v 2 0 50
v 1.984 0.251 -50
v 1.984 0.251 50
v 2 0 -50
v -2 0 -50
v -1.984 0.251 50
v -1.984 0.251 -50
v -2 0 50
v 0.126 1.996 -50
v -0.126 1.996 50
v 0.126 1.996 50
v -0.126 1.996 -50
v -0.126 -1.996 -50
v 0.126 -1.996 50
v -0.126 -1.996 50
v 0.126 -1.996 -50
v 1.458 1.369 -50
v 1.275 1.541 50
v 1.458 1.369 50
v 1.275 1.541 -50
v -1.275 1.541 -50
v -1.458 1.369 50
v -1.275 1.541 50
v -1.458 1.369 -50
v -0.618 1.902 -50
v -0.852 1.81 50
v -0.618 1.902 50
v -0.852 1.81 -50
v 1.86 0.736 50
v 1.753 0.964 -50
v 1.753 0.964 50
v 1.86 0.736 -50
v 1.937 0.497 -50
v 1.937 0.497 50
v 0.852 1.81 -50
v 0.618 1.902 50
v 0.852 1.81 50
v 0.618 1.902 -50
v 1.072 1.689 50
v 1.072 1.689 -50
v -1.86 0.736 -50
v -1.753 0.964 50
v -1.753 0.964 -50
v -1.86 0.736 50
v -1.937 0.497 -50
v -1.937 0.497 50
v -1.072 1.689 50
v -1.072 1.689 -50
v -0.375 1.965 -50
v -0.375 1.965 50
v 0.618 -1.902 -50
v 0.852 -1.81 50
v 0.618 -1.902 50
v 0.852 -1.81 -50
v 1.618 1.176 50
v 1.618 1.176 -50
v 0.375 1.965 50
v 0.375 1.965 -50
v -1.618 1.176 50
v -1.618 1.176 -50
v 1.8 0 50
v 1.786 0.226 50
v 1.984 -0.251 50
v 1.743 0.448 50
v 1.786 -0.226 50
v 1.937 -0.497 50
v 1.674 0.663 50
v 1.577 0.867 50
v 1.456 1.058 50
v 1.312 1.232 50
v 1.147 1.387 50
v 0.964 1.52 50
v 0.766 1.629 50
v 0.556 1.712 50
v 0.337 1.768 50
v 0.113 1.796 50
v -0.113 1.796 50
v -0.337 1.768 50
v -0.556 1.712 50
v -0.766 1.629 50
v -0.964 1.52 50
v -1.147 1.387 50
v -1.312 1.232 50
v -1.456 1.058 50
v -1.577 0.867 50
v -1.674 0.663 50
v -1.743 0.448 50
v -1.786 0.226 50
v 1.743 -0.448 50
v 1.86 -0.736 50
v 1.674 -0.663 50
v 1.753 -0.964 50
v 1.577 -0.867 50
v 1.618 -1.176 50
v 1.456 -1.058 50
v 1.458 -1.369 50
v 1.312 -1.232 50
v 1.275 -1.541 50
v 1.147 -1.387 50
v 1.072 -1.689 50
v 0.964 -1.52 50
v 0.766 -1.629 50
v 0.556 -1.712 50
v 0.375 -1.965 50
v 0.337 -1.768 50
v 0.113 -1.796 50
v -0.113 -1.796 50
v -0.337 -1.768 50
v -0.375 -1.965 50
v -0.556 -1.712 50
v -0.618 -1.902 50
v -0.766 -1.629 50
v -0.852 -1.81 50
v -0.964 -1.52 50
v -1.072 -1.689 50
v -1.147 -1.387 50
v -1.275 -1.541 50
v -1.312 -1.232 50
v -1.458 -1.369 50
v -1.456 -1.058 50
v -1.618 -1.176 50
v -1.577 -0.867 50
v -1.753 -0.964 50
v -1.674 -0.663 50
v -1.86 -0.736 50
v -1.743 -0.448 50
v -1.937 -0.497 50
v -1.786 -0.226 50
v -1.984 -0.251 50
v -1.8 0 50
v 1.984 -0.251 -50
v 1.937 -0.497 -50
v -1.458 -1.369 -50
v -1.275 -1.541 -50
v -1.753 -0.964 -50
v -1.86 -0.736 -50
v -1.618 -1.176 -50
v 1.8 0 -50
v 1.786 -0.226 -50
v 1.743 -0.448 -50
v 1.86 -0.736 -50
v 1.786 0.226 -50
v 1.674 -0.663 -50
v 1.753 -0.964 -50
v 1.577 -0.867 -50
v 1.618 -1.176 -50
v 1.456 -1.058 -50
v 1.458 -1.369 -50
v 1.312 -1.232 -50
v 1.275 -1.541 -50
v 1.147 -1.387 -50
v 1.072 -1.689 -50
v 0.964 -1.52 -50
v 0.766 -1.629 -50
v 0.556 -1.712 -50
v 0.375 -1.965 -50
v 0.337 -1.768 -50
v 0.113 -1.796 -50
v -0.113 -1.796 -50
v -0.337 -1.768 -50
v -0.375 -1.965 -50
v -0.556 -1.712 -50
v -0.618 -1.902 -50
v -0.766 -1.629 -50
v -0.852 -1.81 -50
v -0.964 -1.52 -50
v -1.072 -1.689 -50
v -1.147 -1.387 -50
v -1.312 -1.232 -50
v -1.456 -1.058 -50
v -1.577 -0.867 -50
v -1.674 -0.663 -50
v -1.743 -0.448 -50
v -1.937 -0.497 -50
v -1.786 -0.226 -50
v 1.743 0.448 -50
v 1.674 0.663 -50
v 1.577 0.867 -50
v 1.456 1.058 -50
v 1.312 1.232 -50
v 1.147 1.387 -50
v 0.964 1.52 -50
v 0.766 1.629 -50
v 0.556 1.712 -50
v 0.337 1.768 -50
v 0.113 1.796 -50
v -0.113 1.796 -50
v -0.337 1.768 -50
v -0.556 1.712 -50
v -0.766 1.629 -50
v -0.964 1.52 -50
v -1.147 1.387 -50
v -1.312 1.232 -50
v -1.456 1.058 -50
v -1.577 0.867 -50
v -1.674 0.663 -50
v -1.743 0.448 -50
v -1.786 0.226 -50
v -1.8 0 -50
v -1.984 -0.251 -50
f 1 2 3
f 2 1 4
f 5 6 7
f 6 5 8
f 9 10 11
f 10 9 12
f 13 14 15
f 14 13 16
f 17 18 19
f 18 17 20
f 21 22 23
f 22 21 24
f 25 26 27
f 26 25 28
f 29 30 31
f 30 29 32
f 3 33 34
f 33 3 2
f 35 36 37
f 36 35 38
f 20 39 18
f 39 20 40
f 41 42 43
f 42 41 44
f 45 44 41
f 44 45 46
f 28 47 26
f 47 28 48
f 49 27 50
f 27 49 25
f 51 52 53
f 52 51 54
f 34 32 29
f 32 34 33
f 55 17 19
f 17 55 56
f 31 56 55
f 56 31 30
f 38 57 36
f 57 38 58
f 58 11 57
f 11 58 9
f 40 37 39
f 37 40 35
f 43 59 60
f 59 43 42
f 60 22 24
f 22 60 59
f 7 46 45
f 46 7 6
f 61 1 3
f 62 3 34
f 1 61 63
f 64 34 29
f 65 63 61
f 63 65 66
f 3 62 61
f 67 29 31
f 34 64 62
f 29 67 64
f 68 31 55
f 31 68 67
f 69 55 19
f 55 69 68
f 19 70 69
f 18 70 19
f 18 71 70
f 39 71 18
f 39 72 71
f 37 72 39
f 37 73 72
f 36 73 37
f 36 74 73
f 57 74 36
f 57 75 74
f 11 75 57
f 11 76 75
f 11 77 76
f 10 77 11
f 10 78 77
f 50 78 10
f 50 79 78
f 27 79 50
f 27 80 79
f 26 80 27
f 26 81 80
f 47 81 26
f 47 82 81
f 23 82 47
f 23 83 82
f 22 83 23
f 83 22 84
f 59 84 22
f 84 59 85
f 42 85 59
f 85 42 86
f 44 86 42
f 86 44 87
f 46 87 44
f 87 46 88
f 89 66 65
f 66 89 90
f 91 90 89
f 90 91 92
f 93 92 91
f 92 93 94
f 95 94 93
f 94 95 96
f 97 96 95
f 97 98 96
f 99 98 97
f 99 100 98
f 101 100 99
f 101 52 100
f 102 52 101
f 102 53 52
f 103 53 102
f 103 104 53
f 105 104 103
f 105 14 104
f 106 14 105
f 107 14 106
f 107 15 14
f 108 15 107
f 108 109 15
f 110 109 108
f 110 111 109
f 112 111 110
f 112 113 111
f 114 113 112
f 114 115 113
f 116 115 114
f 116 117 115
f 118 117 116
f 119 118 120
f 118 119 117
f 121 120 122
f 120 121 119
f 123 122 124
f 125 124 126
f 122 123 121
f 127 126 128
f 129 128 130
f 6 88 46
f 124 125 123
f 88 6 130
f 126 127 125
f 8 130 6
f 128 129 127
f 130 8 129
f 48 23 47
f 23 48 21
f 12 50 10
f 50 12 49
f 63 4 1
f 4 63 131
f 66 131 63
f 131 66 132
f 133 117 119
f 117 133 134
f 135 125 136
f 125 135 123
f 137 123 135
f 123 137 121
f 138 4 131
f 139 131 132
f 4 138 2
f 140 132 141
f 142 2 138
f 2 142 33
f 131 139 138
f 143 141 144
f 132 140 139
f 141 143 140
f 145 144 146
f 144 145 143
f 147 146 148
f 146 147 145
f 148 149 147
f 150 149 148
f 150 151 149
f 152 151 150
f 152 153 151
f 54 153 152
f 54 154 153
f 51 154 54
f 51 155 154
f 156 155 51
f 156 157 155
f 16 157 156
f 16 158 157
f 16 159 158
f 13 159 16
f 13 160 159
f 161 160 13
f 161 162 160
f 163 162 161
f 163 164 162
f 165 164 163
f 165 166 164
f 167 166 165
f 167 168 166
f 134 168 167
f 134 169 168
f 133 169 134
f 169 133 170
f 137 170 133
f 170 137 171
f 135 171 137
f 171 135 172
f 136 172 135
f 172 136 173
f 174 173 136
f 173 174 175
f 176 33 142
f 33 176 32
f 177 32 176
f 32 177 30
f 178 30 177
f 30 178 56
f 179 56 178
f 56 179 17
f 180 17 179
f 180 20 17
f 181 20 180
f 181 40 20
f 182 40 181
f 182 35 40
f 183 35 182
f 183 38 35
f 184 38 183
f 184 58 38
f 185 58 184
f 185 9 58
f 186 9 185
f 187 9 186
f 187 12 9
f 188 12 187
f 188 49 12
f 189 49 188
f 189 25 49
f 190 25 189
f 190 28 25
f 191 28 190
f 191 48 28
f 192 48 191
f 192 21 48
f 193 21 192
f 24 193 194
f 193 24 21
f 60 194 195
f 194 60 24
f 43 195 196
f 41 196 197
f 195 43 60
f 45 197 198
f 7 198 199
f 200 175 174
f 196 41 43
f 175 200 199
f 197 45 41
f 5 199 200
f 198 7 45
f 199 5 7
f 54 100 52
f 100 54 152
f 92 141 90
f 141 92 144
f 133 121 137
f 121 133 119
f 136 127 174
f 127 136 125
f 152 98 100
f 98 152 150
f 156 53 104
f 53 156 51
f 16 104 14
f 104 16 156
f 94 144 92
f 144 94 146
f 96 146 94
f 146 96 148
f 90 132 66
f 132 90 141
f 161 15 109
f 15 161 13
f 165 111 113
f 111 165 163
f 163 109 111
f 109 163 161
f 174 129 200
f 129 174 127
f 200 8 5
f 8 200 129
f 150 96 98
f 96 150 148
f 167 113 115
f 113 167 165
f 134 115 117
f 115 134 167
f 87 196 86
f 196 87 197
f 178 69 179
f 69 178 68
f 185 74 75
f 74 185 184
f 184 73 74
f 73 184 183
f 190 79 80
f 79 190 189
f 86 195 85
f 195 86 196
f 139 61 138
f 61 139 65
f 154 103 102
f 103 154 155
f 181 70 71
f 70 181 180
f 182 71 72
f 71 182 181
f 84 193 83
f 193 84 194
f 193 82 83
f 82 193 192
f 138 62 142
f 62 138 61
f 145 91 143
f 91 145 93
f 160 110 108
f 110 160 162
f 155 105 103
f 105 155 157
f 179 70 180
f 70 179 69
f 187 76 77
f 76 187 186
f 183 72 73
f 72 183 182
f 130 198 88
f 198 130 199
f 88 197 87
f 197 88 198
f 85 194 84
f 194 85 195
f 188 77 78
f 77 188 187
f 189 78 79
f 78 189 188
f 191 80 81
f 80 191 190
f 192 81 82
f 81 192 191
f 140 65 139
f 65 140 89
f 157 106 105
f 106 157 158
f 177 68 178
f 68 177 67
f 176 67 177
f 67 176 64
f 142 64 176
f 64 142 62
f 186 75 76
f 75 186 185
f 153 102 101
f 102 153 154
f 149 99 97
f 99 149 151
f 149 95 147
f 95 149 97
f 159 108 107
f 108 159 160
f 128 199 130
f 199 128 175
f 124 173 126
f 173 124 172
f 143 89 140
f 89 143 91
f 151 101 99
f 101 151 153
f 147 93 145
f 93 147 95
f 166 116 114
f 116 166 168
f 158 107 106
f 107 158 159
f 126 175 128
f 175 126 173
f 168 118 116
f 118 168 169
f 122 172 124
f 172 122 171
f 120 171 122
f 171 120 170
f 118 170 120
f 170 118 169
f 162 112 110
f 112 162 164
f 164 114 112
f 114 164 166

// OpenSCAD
$fn = 50;


difference() {
	union() {
		translate(v = [0, 0, -50.0000000000]) {
			cylinder(h = 100, r = 2.0000000000);
		}
	}
	union() {
		translate(v = [0, 0, -100.0000000000]) {
			cylinder(h = 200, r = 1.8000000000);
		}
	}
}
